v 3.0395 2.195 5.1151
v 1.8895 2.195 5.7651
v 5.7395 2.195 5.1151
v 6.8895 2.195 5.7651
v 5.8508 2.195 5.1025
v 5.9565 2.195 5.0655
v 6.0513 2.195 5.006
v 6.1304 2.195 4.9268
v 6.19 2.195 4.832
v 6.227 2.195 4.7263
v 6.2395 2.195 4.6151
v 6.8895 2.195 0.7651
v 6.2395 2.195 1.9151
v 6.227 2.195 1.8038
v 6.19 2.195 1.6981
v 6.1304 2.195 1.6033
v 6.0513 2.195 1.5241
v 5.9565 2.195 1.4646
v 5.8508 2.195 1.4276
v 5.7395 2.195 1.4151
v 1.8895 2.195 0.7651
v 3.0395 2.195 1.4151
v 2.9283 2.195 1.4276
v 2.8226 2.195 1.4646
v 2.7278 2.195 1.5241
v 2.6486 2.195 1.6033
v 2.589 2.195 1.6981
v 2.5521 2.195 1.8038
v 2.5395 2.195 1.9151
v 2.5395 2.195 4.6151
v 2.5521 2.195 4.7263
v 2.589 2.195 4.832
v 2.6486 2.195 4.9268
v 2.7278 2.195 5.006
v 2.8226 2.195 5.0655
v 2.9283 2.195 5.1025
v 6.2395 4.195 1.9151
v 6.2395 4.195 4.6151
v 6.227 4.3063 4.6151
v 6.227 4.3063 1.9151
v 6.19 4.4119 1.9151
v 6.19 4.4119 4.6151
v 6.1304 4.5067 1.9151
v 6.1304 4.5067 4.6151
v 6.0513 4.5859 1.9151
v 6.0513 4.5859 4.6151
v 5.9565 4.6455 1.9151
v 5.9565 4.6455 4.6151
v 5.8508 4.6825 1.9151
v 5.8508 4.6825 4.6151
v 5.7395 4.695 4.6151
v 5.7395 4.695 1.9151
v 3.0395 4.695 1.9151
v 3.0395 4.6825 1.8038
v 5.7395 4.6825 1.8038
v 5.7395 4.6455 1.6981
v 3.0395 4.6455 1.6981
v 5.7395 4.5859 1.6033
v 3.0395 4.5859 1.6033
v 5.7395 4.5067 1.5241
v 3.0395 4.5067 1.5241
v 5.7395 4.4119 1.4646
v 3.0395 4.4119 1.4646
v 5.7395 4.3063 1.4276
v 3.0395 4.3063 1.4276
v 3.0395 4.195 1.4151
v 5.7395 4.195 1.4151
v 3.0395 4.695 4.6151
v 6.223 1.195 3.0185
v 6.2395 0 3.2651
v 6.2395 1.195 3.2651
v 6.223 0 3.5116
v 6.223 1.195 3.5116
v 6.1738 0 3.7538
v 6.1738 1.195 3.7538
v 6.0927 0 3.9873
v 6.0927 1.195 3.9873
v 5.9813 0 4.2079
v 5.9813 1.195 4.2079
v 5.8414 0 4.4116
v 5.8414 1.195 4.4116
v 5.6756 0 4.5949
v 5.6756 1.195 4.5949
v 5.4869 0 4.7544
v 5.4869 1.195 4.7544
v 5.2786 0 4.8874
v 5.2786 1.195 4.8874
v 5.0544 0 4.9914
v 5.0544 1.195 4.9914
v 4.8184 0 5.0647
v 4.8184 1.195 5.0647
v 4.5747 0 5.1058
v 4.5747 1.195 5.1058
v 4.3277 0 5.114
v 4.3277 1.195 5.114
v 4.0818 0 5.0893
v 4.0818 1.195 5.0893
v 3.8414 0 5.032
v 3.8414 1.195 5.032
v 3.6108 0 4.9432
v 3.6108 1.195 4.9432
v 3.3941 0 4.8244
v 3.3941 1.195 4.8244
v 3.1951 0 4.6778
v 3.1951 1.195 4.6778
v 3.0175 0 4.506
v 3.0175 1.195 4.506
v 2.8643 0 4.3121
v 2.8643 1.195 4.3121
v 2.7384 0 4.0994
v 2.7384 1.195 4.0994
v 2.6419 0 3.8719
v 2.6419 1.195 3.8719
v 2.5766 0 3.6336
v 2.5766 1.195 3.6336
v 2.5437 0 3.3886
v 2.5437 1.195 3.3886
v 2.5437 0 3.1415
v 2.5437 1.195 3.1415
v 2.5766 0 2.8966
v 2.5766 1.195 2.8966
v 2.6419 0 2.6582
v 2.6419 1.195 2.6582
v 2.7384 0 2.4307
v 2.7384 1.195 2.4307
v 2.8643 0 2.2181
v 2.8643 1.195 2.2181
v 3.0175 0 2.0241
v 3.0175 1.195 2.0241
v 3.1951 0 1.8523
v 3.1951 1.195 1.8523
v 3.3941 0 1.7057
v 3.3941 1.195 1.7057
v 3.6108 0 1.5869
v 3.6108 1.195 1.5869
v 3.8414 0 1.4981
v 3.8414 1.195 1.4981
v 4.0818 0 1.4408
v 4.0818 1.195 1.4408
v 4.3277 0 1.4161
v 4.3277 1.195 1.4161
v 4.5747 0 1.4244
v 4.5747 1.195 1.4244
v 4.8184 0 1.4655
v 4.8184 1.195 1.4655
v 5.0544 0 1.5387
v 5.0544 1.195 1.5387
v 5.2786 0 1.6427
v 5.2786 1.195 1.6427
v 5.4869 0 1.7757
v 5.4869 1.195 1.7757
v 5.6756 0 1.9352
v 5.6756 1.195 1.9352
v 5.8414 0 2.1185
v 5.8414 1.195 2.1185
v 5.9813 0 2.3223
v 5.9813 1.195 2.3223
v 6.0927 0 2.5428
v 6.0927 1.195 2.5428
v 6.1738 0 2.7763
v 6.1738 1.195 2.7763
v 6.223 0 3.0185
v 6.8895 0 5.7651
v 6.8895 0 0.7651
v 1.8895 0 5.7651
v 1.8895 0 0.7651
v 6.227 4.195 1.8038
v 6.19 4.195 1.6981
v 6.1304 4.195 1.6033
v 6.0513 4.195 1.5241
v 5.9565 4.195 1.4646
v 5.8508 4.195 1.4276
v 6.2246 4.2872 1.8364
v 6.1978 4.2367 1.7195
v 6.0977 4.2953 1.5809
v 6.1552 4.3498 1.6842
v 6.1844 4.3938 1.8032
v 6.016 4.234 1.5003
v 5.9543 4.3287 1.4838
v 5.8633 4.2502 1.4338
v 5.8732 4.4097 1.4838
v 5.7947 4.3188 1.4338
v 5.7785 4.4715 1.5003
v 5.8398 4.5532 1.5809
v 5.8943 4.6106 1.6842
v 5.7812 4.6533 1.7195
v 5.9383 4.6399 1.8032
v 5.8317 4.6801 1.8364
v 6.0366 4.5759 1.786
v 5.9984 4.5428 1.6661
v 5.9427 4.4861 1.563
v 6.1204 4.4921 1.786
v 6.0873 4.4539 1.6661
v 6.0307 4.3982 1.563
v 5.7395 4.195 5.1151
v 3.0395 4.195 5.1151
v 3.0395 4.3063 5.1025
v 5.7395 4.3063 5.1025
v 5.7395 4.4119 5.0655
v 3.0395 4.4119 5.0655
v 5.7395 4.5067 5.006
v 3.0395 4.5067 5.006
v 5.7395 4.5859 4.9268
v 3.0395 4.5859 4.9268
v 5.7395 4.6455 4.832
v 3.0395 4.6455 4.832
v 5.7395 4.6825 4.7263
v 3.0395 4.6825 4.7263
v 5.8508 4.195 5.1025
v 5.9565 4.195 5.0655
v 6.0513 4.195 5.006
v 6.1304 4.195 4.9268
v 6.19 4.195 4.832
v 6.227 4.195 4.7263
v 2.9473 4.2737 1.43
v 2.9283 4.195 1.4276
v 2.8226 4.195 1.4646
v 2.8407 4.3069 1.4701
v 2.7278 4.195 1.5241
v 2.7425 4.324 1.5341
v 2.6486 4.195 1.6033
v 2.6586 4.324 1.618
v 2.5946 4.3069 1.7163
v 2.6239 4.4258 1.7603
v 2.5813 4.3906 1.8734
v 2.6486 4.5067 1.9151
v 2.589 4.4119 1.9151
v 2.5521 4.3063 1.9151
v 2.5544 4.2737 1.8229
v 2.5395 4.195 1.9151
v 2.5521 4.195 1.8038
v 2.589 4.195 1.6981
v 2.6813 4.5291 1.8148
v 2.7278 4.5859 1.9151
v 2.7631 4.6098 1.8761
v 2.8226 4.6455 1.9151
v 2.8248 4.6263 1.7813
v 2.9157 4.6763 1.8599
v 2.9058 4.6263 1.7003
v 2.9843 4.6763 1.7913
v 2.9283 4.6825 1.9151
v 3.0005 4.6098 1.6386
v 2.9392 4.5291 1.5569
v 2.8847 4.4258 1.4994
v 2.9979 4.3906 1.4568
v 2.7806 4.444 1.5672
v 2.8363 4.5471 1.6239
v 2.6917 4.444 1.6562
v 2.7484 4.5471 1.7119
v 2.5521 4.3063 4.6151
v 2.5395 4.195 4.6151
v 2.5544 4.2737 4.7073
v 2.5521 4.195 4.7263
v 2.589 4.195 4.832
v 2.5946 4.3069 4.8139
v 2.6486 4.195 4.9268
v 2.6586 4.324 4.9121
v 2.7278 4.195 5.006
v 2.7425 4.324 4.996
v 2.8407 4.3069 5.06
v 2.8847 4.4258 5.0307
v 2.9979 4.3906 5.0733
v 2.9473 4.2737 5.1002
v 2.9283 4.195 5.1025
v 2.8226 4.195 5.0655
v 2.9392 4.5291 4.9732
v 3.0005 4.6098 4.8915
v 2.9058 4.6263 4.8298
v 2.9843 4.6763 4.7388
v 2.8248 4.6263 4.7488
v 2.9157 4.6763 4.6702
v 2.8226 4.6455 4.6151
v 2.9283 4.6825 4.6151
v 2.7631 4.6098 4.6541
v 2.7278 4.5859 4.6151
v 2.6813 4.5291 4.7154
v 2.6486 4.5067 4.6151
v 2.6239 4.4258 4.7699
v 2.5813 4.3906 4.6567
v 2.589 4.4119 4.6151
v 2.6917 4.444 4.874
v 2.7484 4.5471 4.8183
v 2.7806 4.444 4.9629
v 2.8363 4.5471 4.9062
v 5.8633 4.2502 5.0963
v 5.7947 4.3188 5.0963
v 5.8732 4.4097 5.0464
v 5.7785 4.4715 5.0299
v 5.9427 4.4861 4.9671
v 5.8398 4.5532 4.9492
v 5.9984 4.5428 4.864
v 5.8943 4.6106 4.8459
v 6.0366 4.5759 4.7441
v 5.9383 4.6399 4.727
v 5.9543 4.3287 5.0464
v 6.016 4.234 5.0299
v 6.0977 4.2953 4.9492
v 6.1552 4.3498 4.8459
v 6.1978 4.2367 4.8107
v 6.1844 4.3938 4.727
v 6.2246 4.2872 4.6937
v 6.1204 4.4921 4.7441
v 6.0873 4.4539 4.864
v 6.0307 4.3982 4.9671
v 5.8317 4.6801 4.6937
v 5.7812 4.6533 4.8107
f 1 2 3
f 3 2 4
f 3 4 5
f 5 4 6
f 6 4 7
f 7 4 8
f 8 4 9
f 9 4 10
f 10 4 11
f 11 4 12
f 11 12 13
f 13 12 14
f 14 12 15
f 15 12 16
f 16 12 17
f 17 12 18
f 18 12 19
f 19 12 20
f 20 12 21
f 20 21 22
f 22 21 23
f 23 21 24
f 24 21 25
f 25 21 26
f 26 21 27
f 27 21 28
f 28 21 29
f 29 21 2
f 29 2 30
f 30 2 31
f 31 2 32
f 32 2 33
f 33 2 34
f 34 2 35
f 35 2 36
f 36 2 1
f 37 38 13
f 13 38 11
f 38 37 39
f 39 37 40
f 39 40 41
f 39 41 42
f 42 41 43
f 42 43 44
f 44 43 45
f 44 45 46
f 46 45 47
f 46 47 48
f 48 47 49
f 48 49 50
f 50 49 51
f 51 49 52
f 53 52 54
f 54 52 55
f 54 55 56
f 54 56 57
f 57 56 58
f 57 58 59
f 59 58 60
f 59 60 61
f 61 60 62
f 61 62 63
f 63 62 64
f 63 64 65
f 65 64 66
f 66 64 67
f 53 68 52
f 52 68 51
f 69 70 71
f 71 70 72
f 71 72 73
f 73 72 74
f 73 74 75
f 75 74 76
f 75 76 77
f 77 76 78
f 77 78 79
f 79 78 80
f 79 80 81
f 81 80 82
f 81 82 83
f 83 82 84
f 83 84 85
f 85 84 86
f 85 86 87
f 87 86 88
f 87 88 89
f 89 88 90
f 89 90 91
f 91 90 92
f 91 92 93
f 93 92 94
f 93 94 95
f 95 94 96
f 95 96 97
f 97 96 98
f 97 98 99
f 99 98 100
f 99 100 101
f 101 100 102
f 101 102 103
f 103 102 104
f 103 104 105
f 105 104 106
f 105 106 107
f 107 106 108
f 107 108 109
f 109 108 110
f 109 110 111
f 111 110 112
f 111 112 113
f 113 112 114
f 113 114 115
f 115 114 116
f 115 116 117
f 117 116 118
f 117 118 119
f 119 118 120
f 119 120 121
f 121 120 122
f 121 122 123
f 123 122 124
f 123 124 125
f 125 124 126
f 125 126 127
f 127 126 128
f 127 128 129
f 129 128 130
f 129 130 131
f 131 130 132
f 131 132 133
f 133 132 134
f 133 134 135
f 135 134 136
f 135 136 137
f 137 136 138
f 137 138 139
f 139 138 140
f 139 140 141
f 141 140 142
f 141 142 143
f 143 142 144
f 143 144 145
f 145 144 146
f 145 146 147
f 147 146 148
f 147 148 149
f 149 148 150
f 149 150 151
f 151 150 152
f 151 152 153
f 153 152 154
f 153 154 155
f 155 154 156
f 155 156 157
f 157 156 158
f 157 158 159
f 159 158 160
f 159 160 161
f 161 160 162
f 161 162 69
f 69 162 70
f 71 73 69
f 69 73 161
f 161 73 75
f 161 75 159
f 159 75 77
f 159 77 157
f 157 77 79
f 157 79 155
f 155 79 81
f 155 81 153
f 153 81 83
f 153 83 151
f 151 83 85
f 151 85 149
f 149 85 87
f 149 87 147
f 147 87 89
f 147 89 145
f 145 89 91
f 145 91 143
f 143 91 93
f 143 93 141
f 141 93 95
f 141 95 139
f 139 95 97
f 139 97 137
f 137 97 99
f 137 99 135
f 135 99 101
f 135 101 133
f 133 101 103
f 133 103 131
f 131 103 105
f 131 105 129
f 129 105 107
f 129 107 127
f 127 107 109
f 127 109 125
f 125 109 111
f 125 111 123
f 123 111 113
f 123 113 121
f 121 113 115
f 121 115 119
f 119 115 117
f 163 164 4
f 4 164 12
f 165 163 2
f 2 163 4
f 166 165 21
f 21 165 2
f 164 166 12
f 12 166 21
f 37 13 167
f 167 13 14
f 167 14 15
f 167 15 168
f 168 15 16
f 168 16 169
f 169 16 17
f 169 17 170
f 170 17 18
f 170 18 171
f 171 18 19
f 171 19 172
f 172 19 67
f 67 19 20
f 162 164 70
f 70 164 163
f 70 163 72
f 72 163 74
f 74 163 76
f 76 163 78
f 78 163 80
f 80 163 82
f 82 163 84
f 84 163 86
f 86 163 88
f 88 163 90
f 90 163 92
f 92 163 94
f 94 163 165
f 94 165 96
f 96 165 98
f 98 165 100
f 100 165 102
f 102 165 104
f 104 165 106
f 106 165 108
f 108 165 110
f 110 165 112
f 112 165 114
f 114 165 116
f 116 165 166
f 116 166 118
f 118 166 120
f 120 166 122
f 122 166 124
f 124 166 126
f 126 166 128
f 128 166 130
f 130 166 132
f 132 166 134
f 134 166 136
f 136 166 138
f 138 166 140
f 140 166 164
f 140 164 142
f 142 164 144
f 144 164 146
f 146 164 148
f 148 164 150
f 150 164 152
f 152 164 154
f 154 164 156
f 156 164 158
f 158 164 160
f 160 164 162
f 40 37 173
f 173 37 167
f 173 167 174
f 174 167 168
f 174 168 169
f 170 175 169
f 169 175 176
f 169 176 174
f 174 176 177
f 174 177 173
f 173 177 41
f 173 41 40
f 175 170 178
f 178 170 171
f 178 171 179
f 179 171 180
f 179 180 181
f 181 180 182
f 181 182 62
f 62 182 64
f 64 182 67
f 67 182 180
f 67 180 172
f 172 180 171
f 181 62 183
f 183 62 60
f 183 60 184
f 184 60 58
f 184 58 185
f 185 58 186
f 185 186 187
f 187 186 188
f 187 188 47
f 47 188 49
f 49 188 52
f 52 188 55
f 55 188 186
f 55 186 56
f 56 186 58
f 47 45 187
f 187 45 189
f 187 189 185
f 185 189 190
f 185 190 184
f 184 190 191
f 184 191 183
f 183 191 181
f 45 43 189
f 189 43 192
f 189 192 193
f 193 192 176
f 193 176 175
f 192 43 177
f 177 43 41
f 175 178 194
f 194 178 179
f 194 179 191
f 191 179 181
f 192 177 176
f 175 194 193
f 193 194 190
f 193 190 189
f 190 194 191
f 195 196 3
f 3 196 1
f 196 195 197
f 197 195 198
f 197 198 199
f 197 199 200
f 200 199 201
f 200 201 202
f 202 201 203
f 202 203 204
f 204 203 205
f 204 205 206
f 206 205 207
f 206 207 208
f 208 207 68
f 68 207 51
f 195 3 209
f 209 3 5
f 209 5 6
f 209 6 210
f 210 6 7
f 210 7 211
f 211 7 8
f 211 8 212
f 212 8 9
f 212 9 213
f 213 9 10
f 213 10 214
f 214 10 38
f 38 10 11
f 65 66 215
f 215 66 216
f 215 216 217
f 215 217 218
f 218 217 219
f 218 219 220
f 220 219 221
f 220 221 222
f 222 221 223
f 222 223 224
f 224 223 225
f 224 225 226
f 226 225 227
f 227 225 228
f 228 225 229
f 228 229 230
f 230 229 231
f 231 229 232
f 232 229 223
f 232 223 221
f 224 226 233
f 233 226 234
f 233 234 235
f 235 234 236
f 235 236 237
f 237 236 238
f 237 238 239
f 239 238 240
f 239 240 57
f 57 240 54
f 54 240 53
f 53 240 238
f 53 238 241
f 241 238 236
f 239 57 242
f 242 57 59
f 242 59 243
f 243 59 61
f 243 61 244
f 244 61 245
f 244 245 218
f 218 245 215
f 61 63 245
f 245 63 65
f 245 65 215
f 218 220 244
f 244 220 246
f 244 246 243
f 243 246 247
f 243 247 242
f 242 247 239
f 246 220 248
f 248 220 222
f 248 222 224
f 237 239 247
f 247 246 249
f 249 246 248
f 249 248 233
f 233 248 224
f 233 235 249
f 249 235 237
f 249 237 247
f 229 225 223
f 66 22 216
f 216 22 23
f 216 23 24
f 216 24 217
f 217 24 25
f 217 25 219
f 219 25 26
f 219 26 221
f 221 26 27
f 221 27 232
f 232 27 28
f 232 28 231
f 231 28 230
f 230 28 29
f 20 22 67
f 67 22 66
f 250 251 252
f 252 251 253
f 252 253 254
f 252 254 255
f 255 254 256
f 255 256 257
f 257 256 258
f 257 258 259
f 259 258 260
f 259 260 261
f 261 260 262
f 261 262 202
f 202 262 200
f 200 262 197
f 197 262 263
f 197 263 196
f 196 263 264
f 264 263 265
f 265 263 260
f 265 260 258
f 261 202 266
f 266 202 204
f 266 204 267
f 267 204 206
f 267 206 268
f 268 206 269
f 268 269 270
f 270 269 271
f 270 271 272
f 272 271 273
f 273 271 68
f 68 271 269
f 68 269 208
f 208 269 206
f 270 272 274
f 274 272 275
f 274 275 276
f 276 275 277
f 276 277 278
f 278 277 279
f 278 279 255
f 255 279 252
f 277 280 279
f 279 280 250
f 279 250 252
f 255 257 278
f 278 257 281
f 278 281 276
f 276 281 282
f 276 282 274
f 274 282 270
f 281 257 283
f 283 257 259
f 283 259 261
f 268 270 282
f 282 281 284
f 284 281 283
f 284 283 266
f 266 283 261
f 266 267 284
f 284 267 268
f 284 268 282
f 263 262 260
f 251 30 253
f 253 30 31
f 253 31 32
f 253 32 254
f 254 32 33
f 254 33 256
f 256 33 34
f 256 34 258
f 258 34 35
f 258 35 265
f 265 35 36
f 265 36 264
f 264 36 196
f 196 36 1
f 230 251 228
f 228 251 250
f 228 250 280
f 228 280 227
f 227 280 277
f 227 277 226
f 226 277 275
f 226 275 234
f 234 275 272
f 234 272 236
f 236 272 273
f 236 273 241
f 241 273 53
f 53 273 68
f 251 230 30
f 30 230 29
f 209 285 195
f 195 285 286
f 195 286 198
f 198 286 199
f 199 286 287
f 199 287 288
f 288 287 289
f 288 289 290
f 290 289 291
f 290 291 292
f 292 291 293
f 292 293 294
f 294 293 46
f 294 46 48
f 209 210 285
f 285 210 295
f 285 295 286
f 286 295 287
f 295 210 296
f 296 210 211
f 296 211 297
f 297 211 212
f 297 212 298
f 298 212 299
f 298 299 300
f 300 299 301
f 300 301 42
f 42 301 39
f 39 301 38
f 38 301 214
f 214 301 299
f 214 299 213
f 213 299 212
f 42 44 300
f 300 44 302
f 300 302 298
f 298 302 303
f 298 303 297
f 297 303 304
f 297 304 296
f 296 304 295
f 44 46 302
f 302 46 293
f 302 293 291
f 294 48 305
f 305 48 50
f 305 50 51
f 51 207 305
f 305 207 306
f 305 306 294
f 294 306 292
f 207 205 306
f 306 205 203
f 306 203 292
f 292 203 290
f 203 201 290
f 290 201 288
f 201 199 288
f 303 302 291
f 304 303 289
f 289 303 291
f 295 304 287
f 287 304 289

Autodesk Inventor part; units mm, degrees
ref_plane "YZ Plane" through (0, 0, 0) normal (1, 0, 0) x (0, 1, 0)
ref_plane "XZ Plane" through (0, 0, 0) normal (0, 1, 0) x (-1, 0, 0)
ref_plane "XY Plane" through (0, 0, 0) normal (0, 0, 1) x (1, 0, 0)
sketch "Esquisse6" plane through (0, 0, 0) normal (0, 1, 0) x (-1, 0, 0)
  line L0 (-6.8895, 5.7651) -> (-1.8895, 5.7651)
  line L1 (-1.8895, 5.7651) -> (-1.8895, 0.7651)
  line L2 (-1.8895, 0.7651) -> (-6.8895, 0.7651)
  line L3 (-6.8895, 0.7651) -> (-6.8895, 5.7651)
  point P0 (0, 0)
  dimension "d12" = 5
  dimension "d13" = 5
extrude "Extrusion5" add sketch "Esquisse6" along normal blind 2.195
sketch "Esquisse7" plane through (0, 0, 0) normal (0, -1, 0) x (1, 0, 0)
  line L0 (6.8895, 5.7651) -> (6.8895, 0.7651) projected
  line L1 (6.8895, 0.7651) -> (1.8895, 0.7651) projected
  circle A0 centre (4.3895, 3.2651) radius 1.85
  point P0 (0, 0)
  dimension "d19" = 3.7
extrude "Extrusion6" cut sketch "Esquisse7" against normal blind 1.195
sketch "Esquisse8" plane through (0, 2.195, 0) normal (0, 1, 0) x (1, 0, 0)
  line L0 (2.5395, -5.1151) -> (6.2395, -5.1151)
  line L1 (6.2395, -5.1151) -> (6.2395, -1.4151)
  line L2 (6.2395, -1.4151) -> (2.5395, -1.4151)
  line L3 (2.5395, -1.4151) -> (2.5395, -5.1151)
  point P0 (0, 0)
extrude "Extrusion7" add sketch "Esquisse8" along normal blind 2.5
fillet "Congé2" radius 0.5 4 edges at (4.3895, 4.695, 5.1151) (6.2395, 4.695, 3.2651) (4.3895, 4.695, 1.4151) (2.5395, 4.695, 3.2651)
fillet "Congé3" radius 0.5 8 edges at (2.686, 4.5486, 1.5615) (2.5395, 3.195, 1.4151) (2.686, 4.5486, 4.9686) (2.5395, 3.195, 5.1151) (6.0931, 4.5486, 4.9686) (6.2395, 3.195, 5.1151) (6.0931, 4.5486, 1.5615) (6.2395, 3.195, 1.4151)
properties part number "button"
